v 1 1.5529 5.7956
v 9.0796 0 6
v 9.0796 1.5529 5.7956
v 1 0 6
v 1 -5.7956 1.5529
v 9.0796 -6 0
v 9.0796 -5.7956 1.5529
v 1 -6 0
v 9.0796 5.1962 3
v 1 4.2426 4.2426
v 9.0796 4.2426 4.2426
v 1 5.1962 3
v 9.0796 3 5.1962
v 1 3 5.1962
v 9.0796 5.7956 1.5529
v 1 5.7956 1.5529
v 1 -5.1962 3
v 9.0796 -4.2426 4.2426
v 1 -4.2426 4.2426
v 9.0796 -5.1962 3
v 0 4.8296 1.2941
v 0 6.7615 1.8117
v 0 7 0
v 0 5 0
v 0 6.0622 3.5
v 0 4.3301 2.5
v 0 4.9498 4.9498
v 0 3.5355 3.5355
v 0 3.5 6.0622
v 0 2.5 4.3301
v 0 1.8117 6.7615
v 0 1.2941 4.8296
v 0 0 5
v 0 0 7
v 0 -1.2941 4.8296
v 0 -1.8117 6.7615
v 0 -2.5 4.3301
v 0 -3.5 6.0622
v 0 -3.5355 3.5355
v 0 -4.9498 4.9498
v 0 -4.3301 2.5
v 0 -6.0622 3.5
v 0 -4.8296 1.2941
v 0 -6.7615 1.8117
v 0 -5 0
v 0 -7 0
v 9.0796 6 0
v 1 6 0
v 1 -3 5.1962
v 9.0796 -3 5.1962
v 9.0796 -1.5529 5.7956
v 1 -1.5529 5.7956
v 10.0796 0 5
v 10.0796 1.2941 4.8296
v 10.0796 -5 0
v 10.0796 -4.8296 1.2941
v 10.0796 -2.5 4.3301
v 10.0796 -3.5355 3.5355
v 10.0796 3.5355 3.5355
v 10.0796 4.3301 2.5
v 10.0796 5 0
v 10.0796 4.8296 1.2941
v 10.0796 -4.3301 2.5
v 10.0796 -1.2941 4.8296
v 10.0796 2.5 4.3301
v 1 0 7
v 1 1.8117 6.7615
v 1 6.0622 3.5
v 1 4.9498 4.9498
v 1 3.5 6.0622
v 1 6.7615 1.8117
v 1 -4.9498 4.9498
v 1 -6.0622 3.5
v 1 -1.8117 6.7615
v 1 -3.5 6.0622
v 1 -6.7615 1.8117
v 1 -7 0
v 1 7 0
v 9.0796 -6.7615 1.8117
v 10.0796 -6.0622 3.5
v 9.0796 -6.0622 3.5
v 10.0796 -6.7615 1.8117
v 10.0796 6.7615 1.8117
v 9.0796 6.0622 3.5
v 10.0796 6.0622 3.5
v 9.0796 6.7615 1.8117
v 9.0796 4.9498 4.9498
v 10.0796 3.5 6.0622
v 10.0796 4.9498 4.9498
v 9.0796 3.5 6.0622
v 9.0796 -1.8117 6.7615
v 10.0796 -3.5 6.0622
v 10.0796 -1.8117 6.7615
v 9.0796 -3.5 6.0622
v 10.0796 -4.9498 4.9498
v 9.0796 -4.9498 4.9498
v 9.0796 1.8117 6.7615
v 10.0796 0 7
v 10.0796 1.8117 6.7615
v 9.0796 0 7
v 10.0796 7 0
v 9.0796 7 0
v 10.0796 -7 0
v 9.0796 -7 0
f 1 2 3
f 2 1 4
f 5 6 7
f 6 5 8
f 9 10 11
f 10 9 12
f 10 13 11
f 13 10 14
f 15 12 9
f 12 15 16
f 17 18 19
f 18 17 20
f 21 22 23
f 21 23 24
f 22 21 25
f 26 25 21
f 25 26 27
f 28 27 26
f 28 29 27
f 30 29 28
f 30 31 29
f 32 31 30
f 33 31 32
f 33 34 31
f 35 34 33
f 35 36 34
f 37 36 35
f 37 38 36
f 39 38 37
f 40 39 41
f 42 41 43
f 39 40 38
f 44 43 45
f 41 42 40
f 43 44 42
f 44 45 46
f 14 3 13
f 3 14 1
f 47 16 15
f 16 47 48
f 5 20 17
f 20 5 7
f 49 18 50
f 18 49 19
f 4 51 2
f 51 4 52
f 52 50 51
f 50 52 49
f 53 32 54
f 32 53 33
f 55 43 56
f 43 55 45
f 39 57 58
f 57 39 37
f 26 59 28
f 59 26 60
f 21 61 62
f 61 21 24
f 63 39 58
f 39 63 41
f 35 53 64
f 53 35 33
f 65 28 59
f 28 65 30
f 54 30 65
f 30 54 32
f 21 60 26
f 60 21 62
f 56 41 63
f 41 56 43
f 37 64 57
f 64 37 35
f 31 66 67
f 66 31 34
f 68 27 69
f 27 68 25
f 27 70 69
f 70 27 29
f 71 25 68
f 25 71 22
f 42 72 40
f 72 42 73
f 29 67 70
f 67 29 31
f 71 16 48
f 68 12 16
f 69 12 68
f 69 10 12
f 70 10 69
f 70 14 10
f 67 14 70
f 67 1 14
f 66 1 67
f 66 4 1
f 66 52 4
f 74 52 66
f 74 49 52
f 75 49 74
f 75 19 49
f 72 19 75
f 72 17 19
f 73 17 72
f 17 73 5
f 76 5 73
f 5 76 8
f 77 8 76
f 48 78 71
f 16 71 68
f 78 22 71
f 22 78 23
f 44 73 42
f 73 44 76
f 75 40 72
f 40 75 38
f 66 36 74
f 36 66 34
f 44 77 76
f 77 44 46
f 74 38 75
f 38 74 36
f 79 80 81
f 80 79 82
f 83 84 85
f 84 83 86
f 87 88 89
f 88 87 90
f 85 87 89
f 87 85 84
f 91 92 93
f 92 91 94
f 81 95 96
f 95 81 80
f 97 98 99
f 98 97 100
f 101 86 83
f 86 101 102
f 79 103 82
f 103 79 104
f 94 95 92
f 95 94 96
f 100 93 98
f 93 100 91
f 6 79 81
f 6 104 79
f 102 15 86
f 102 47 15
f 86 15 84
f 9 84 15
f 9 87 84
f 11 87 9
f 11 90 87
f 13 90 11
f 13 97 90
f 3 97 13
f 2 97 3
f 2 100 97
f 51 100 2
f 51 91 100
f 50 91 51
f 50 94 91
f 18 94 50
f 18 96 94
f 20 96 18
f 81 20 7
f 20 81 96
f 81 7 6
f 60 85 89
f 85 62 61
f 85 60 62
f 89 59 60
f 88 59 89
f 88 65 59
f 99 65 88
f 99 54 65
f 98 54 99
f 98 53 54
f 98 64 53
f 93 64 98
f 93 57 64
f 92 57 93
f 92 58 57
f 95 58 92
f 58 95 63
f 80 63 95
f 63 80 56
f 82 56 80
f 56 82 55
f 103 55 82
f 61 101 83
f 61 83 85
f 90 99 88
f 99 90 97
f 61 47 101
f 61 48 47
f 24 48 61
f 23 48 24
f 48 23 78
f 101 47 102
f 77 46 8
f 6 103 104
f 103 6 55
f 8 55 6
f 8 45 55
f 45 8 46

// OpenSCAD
// file: ../build_environments.scad
// build_environments.scad: modules to build level sections
//

module pool(diameter=10.0, wall_height=2.0, step_width=3.0, connections=[])
{
    difference() {
        union() {
        difference() {
            cylinder(h=0.5,r1=diameter+step_width,r2=diameter+step_width,$fn=48);
            translate([0,0,-0.1])
                cylinder(h=0.7,r1=diameter,r2=diameter,$fn=48);
        }
        difference() {
            cylinder(h=wall_height,r1=diameter+step_width+1.0,r2=diameter+step_width+1.0,$fn=48);
            translate([0,0,-0.1])
                cylinder(h=wall_height+0.2,r1=diameter+step_width,r2=diameter+step_width,$fn=48);
        }
        }
    
        for (c = connections)
        {
            rotate([0,90,0]) {
                angle = atan2(c[1],c[0]);
                rotate([-angle,0,0]) {
                    cylinder(h=diameter+5.0,r1=c[2],r2=c[2],$fn=48);
                }
            }
        }
    }
}

module straight(length=10.0, width=2.0, dy1=0.0, dy2=0.0, dz=0.0)
{
    dims = [0, 0, 0, 0, 0, (dz/length)];
    matrix = [
        [ 1, dims[0], dims[1], 0 ],
        [ dims[2], 1, dims[4], 0 ],
        [ dims[5], dims[3], 1, 0 ],
        [ 0, 0, 0, 1 ]
    ];
    multmatrix(matrix)
    difference() {
        translate([dy1,0,0])
        union() {
            rotate([0,90,0]) {
                difference() {
                    cylinder(h=(length-dy1-dy2),r1=width+1.0,r2=width+1.0,$fn=24);
                    translate([0,0,-0.1])
                        cylinder(h=(length-dy1-dy2+0.2),r1=width,r2=width,$fn=24);
                }
                difference() {
                    cylinder(h=1.0,r1=width+2.0,r2=width+2.0,$fn=24);
                    translate([0,0,-0.1])
                        cylinder(h=1.2,r1=width,r2=width,$fn=24);
                }
                translate([0,0,(length-dy1-dy2)-1.0]) {
                    difference() {
                        cylinder(h=1.0,r1=width+2.0,r2=width+2.0,$fn=24);
                        translate([0,0,-0.1])
                            cylinder(h=1.2,r1=width,r2=width,$fn=24);
                    }
                }
            }
        }
        translate([0,0,-(2*width+4.0)/2])
            cube([3*length,3*length,2*width+4.0],center=true);
    }
}

module curve(p0=[0,0], center=[0,0], dir=1, angle=0.0, width=2.0)
{
    radius = sqrt((p0[0]-center[0])*(p0[0]-center[0]) + (p0[1]-center[1])*(p0[1]-center[1]));
    if (dir == 0) {
        difference() {
            rotate([0,0,-90])
            difference() {
                rotate_extrude(angle = angle, convexity = 10, $fn=32)
                    translate([radius, 0, 0])
                        circle(r = width+1.0,$fn=24);
                rotate([0,0,-1.0])
                    rotate_extrude(angle = angle+2.0, convexity = 10, $fn=32)
                        translate([radius, 0, 0])
                            circle(r = width,$fn=24);
            }
            translate([0,0,-(2*width+4.0)/2])
                cube([5*radius,5*radius,2*width+4.0],center=true);
        }
    }
    else {
        difference() {
            rotate([0,0,90])
            difference() {
                rotate_extrude(angle = -angle, convexity = 10, $fn=32)
                    translate([radius, 0, 0])
                        circle(r = width+1.0,$fn=24);
                rotate([0,0,1.0])
                    rotate_extrude(angle = -angle-2.0, convexity = 10, $fn=32)
                        translate([radius, 0, 0])
                            circle(r = width,$fn=24);
            }
            translate([0,0,-(2*width+4.0)/2])
                cube([5*radius,5*radius,2*width+4.0],center=true);
        }
    }

}

// test pool
//pool(diameter=12.0000, wall_height=3.0000, step_width=3.0000, connections=[[0.0000,-26.0000,2.0000], [23.6074,0.0000,2.0000]]);

// test straight, slope
//straight(length=26.0000, width=2.0000, dy1=11.8322, dy2=6.7082, dz=0.0000);
//straight(length=29.1549, width=12.0000, dy1=0.0000, dy2=0.0000, dz=-15.0000);

// test curve
//curve(p0=[23.6074, 0.0000], center=[23.6074, 5.0000], dir=0, angle=60.1011, width=2.0000);
//curve(p0=[33.6426, 12.4219], center=[37.9771, 9.9295], dir=1, angle=120.4627, width=2.0000);
// main file
use <../build_environments.scad>;
straight(length=10.0796, width=5.0000, dy1=0.0000, dy2=0.0000, dz=0.0000);
